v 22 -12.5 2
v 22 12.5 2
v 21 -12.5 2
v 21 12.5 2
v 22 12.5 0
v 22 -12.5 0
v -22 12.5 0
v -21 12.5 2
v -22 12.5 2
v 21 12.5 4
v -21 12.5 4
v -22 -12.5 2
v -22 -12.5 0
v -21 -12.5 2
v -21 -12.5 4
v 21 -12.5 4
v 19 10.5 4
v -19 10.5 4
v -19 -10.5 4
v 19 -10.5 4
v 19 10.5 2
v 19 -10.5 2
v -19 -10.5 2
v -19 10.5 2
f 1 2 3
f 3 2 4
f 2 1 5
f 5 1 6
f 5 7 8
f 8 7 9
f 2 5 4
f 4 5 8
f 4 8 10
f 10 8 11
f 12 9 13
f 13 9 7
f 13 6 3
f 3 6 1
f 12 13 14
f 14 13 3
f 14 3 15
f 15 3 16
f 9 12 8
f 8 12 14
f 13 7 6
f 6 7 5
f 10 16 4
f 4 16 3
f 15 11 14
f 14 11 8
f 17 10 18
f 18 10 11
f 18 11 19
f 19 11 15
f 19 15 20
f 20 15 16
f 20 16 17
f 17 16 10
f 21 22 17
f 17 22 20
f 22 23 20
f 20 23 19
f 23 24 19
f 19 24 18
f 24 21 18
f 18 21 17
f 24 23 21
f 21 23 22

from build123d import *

# Parameters (mm, degrees)
IZIM1_W                     = 44
IZIM1_H                     = 25
Y_KSEKLIK_EKSTR_ZYON1_DEPTH = 2
IZIM3_W                     = 42
IZIM3_H                     = 25
Y_KSEKLIK_EKSTR_ZYON2_DEPTH = 2
IZIM5_W                     = 38
IZIM5_H                     = 21
KES_EKSTR_ZYON1_DEPTH       = 2


with BuildPart() as part:
    # Çizim1 → Yükseklik-Ekstrüzyon1 (new body)
    with BuildSketch(Plane.XY):
        Rectangle(IZIM1_W, IZIM1_H)
    extrude(amount=Y_KSEKLIK_EKSTR_ZYON1_DEPTH)

    # Çizim3 → Yükseklik-Ekstrüzyon2 (add)
    with BuildSketch(Plane.XY.offset(2)):
        Rectangle(IZIM3_W, IZIM3_H)
    extrude(amount=Y_KSEKLIK_EKSTR_ZYON2_DEPTH)

    # Çizim5 → Kes-Ekstrüzyon1 (cut)
    with BuildSketch(Plane.XY.offset(4)):
        Rectangle(IZIM5_W, IZIM5_H)
    extrude(amount=-KES_EKSTR_ZYON1_DEPTH, mode=Mode.SUBTRACT)


solid = part.part
